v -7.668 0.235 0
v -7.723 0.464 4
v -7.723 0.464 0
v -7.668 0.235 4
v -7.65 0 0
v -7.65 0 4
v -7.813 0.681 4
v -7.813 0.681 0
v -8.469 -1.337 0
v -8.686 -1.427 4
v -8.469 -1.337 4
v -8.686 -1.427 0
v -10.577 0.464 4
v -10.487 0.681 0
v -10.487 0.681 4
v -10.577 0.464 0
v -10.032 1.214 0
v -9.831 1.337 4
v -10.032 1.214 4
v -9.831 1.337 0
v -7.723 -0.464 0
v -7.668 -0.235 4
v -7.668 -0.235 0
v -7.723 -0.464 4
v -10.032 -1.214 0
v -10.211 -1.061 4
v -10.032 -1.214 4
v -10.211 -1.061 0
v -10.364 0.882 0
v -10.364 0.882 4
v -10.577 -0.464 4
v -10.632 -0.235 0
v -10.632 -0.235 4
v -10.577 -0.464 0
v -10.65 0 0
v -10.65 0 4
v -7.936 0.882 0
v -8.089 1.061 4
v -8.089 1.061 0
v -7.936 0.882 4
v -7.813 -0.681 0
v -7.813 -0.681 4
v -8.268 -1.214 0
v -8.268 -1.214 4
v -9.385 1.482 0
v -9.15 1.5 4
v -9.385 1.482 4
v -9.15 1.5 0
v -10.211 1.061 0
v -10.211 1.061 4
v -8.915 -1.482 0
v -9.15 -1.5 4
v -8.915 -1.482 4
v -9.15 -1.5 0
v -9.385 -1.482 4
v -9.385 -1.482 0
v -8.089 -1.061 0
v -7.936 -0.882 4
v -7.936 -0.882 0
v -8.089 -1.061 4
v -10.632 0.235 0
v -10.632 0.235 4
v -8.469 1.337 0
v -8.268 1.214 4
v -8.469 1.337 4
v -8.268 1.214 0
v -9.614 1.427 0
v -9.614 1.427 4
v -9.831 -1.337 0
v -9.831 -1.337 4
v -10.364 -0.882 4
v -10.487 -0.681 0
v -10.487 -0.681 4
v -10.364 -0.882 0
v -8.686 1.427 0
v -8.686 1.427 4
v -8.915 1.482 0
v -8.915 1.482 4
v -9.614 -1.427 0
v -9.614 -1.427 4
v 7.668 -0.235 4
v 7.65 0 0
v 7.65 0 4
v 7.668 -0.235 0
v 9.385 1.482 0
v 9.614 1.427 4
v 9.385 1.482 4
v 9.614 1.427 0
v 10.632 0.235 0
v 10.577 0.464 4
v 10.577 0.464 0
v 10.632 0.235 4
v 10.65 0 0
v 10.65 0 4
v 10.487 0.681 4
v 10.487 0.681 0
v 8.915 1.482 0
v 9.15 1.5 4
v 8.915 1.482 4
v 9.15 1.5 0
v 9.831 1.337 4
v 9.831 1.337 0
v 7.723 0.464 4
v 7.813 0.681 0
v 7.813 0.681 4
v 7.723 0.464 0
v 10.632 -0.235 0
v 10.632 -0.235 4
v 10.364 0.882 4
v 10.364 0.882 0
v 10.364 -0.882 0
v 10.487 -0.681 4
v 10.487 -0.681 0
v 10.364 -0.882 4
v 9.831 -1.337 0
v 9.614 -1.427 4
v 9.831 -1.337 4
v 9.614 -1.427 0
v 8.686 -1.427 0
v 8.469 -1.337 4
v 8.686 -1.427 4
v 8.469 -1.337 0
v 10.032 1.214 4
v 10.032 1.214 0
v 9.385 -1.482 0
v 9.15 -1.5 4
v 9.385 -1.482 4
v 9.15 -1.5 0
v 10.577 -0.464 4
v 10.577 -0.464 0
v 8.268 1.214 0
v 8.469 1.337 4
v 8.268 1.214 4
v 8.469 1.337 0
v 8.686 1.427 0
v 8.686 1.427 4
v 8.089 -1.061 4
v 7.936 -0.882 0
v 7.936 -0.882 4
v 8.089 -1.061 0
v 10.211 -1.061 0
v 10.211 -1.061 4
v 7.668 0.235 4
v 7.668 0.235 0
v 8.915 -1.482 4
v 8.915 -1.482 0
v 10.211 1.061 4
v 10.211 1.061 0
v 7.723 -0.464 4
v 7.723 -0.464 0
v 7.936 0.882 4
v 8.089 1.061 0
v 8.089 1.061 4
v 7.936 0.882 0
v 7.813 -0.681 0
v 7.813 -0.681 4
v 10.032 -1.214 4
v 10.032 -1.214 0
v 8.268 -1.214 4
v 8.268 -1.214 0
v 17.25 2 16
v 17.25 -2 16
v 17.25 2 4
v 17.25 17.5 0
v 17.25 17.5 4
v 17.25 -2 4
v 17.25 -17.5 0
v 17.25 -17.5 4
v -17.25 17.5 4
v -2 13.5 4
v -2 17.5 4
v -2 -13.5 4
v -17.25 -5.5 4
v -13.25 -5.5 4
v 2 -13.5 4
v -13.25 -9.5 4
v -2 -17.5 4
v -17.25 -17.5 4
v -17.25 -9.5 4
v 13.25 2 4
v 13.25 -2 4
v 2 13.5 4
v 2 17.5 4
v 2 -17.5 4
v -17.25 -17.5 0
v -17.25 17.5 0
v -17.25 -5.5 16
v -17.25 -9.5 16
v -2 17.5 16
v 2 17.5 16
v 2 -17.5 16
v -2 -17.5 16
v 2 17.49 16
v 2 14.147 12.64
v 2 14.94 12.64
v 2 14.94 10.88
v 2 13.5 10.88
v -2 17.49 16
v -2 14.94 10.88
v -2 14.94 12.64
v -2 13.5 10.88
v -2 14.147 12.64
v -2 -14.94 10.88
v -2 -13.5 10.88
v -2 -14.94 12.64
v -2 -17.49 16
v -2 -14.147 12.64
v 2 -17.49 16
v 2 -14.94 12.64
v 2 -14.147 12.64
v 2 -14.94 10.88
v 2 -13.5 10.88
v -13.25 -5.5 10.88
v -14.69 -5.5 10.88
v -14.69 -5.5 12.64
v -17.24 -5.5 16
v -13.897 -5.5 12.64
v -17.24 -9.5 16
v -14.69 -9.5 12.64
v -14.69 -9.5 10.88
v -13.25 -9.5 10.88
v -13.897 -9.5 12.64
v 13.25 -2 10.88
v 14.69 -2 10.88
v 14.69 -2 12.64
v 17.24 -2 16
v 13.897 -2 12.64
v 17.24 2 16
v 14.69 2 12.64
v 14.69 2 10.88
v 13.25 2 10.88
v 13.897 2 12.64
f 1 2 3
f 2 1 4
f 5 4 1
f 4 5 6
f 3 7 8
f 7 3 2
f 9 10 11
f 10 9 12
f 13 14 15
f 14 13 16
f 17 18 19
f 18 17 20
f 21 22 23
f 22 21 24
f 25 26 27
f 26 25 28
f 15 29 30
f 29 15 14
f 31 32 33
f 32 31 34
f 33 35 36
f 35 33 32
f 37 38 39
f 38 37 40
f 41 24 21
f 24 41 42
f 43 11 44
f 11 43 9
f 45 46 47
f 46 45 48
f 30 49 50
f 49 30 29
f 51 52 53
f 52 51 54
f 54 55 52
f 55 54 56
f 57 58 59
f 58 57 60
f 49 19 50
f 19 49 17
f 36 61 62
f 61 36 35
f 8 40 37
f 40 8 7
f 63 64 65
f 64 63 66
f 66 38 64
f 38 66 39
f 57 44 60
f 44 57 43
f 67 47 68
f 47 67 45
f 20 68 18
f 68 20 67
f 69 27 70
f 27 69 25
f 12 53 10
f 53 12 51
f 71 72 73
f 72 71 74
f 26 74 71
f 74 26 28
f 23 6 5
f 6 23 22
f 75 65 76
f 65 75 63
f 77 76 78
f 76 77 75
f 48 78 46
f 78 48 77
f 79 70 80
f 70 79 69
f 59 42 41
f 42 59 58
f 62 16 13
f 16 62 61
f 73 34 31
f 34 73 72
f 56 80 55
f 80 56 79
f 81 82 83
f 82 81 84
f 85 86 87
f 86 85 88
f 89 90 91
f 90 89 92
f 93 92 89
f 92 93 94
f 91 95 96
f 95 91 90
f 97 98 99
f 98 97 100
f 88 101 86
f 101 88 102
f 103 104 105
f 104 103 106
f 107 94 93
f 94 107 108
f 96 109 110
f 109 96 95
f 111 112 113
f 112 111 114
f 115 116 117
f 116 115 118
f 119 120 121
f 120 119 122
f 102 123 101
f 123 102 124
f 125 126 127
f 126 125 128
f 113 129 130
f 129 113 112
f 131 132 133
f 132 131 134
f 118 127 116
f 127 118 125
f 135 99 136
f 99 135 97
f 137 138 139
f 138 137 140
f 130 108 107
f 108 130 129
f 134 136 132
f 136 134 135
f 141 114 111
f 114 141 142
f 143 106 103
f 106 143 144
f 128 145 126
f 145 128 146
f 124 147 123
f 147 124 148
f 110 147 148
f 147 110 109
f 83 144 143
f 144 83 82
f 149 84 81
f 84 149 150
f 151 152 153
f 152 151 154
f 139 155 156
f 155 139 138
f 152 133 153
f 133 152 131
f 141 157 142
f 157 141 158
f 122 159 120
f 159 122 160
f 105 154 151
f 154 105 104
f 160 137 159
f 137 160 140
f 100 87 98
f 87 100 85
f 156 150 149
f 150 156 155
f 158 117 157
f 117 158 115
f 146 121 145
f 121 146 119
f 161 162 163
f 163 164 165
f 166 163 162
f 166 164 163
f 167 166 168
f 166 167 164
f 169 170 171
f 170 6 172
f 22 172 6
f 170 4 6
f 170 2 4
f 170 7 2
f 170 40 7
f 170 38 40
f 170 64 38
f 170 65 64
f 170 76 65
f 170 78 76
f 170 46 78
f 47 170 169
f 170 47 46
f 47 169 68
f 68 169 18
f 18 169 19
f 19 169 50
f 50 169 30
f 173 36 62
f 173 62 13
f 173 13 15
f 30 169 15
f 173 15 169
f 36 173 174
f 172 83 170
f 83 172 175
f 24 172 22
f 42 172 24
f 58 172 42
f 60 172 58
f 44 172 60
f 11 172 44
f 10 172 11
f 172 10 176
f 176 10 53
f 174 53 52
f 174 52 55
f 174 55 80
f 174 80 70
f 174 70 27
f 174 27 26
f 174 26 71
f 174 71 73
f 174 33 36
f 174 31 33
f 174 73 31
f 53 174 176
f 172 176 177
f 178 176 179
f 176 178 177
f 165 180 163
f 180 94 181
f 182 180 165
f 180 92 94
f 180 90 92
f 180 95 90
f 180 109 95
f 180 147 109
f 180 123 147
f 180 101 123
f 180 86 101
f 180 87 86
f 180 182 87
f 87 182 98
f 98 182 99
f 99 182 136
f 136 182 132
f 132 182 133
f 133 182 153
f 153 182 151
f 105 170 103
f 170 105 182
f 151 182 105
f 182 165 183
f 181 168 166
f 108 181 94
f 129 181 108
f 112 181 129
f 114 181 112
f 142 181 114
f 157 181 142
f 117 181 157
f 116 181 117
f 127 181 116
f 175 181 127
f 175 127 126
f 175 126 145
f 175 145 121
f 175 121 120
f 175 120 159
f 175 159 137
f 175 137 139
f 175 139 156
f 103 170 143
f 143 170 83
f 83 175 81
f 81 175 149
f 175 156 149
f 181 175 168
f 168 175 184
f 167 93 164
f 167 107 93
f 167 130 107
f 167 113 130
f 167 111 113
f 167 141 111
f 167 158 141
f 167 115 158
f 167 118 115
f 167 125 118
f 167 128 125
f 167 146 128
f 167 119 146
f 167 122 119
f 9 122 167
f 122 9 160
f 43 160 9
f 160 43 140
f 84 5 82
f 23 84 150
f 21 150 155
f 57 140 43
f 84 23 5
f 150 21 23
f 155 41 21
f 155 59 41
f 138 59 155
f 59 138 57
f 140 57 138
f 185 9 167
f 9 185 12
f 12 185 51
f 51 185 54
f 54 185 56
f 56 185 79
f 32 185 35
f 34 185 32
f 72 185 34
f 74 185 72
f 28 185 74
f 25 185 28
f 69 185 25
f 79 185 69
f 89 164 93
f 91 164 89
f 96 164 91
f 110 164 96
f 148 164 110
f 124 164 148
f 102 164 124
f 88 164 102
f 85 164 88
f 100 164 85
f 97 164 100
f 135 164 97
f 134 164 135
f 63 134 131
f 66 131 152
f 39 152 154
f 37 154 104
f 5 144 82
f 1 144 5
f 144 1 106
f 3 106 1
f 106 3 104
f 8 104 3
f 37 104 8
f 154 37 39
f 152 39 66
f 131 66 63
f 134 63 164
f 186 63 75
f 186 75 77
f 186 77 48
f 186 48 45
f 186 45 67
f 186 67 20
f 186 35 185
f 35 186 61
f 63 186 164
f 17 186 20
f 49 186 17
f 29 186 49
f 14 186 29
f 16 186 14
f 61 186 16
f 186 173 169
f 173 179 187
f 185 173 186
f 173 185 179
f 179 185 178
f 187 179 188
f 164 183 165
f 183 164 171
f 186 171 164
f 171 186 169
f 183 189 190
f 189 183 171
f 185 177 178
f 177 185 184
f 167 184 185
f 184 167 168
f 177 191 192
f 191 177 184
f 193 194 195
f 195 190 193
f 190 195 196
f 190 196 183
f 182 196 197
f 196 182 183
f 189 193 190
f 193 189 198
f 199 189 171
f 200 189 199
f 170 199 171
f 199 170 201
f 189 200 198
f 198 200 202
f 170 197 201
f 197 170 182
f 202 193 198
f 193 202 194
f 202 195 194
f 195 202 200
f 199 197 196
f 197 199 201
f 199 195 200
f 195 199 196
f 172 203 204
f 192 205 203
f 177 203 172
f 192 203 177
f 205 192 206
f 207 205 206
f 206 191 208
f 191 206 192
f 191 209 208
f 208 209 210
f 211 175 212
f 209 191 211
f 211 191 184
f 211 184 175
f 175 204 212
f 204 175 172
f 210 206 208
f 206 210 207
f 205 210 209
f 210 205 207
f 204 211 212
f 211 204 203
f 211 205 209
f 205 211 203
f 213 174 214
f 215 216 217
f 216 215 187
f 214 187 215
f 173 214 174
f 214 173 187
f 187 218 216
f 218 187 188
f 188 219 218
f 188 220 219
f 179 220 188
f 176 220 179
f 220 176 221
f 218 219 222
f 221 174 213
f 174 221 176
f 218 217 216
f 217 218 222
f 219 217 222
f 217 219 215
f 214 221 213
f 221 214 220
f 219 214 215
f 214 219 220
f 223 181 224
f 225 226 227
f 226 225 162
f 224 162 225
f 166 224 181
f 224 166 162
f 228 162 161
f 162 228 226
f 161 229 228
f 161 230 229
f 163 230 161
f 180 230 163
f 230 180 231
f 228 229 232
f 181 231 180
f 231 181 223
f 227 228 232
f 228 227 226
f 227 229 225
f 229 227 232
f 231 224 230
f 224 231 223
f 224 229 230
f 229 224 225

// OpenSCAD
//-------------------------------------------------------------
//-- PCB Snap-In Mount Plate (v7)
//-- Correct inner lip cutout + inward slope
//-------------------------------------------------------------

//-- ===== Parameters (mm) =====
pcbWidth        = 30.5;
pcbLength       = 31.0;
pcbThickness    = 1.6;
pcbClearance    = 0.15;  //-- small fit tolerance, adjust if PCB feels too tight

snapInThickness = 4;          //-- XY thickness of wall
snapInHeight    = 12;         //-- Z height above plate

snapInSlope     = 45;         //-- degrees, 30..60 typical
snapInWidth     = 4;          //-- width of each snap along edge

//-- Snap-in positions (0 disables)
snapInPosTop    = pcbWidth  / 2;
snapInPosBottom = pcbWidth  / 2;
snapInPosLeft   = 8; //pcbLength / 2;
snapInPosRight  = pcbLength / 2;

plateThickness  = 4;
plateHolesList = [
    [pcbWidth/5, pcbLength/2, 3],
    [pcbWidth-(pcbWidth/5), pcbLength/2, 3]
];

showDebug = 0;                //-- 1 = debug colors, 0 = final solid

//-------------------------------------------------------------
//-- Helpers
//-------------------------------------------------------------
function clamp(v,a,b) = max(a, min(b, v));
function drop_at_angle(thk, ang_deg, max_drop) = clamp(tan(ang_deg) * thk, 0, max_drop);

//-------------------------------------------------------------
//-- Green cutter: starts LOWER at inner face (H - D)
//-- and reaches H at the outer face, so it always cuts the wall
//-------------------------------------------------------------
module cutSlopeAtTop(runLen)
{
    H = snapInHeight;
    T = snapInThickness;
    D = drop_at_angle(T, snapInSlope, H);   //-- ~T at 45°
    eps = 0.01;                              //-- tiny overlap for robust CSG

    //-- Inner top is lowered by D; outer top stays at H.
    //-- We extend upwards a lot so the difference always removes material.
    v = [
        [-runLen/2, 0, H - D - eps],   // 0 inner top (X-)
        [ runLen/2, 0, H - D - eps],   // 1 inner top (X+)
        [-runLen/2, T, H + eps],       // 2 outer top (X-)
        [ runLen/2, T, H + eps],       // 3 outer top (X+)
        [-runLen/2, 0, H - D + H],     // 4 top extension
        [ runLen/2, 0, H - D + H],     // 5
        [-runLen/2, T, H + H],         // 6
        [ runLen/2, T, H + H]          // 7
    ];

    faces = [
        [0,1,3,2],   //-- sloped rectangle (cutting plane)
        [2,3,7,6],   //-- outer vertical
        [0,4,5,1],   //-- inner vertical
        [0,2,6,4],   //-- side (X-)
        [1,5,7,3],   //-- side (X+)
        [4,6,7,5]    //-- top
    ];

    color([0,1,0,0.5]) polyhedron(points = v, faces = faces, convexity = 10);
}

//-------------------------------------------------------------
//-- Blue lip CUTTER: creates notch *inside* wall for PCB edge
//-------------------------------------------------------------
module lipCutter(runLen)
{
    clearance = pcbClearance;                //-- fit clearance
    lipDepth  = pcbThickness * 0.9;          //-- how deep the notch goes inward
    lipHeight = pcbThickness * 1.1;          //-- vertical size of notch
    lipZ      = snapInHeight - (3.2 * pcbThickness); //-- vertical position below top

    color("blue")
    translate([ -runLen/2, 0, lipZ ])        //-- cut starts at wall inner face (Y=0)
        cube([ runLen, lipDepth, lipHeight ]);
}

//-------------------------------------------------------------
//-- Red wall before subtracting slope + lip
//-------------------------------------------------------------
module wallBlock(runLen)
{
    color("red")
    translate([ -runLen/2, 0, 0 ])
        cube([ runLen, snapInThickness, snapInHeight ]);
}

//-------------------------------------------------------------
//-- Full Snap-In Mount
//-------------------------------------------------------------
module snapInMount(runLen)
{
    if (showDebug)
    {
        wallBlock(runLen);
        cutSlopeAtTop(runLen);
        lipCutter(runLen);
    }
    else
    {
        difference()
        {
            wallBlock(runLen);
            cutSlopeAtTop(runLen);
            lipCutter(runLen);
        }
    }
}

//-------------------------------------------------------------
//-- Snap placement helpers (with inward offset)
//-- Positions each snap so that its inner wall face overlaps
//-- the PCB edge by half the wall thickness.
//-------------------------------------------------------------

module placeTop(pos, runLen)
{
    if (pos != 0)
        translate([
            //-- X: center position along width
            clamp(pos, runLen/2, pcbWidth - runLen/2) - pcbWidth/2,

            //-- Y: inward offset from top edge
            (pcbLength / 2) - (snapInThickness / 2),

            //-- Z: on top of the base plate
            plateThickness
        ])
            snapInMount(runLen);
}

module placeBottom(pos, runLen)
{
    if (pos != 0)
        translate([
            //-- X: center position along width
            clamp(pos, runLen/2, pcbWidth - runLen/2) - pcbWidth/2,

            //-- Y: inward offset from bottom edge
            (-pcbLength / 2) + (snapInThickness / 2),

            //-- Z: on top of the base plate
            plateThickness
        ])
            rotate([0, 0, 180])
                snapInMount(runLen);
}

module placeLeft(pos, runLen)
{
    if (pos != 0)
        translate([
            //-- X: inward offset from left edge
            (-pcbWidth / 2) + (snapInThickness / 2),

            //-- Y: center position along length
            clamp(pos, runLen/2, pcbLength - runLen/2) - pcbLength/2,

            //-- Z: on top of the base plate
            plateThickness
        ])
            rotate([0, 0, 90])
                snapInMount(runLen);
}

module placeRight(pos, runLen)
{
    if (pos != 0)
        translate([
            //-- X: inward offset from right edge
            (pcbWidth / 2) - (snapInThickness / 2),

            //-- Y: center position along length
            clamp(pos, runLen/2, pcbLength - runLen/2) - pcbLength/2,

            //-- Z: on top of the base plate
            plateThickness
        ])
            rotate([0, 0, -90])
                snapInMount(runLen);
}

//-------------------------------------------------------------
//-- Plate hole generator (generic version)
//-- Loops through all entries in plateHolesList = [ [x,y,d], ... ]
//-- and subtracts holes if both X and Y ≠ 0
//-------------------------------------------------------------
module plateHoles(pWidth, pLength, pThickness)
{
    difference()
    {
        //-- Base plate
        color("gold")
        translate([ -pWidth/2, -pLength/2, 0 ])
            cube([ pWidth, pLength, pThickness ]);

        //-- All defined holes
        for (hole = plateHolesList)
        {
            x = hole[0];
            y = hole[1];
            d = hole[2];

            if (!(x == 0 && y == 0))
            {
                translate([ x - pcbWidth/2, y - pcbLength/2, -0.1 ])
                    cylinder(h = pThickness + 0.2, d = d, $fn = 40);
            }
        }
    }
}

//-------------------------------------------------------------
//-- Main Assembly
//-------------------------------------------------------------
module pcbSnapInPlate()
{
    plateWidth  = pcbWidth  + snapInThickness;
    plateLength = pcbLength + snapInThickness;

    //-- Base plate with optional holes (correct thickness!)
    plateHoles(plateWidth, plateLength, plateThickness);

    //-- Mounts (sit exactly on top of the plate)
    placeTop(   snapInPosTop,    min(snapInWidth, pcbWidth)  );
    placeBottom(snapInPosBottom, min(snapInWidth, pcbWidth)  );
    placeLeft(  snapInPosLeft,   min(snapInWidth, pcbLength) );
    placeRight( snapInPosRight,  min(snapInWidth, pcbLength) );
}

//-------------------------------------------------------------
//-- Render
//-------------------------------------------------------------
pcbSnapInPlate();

//-------------------------------------------------------------
//-- Reference PCB block (black)
//-------------------------------------------------------------
lipZ = snapInHeight - (2.5 * pcbThickness);  //-- slightly less deep cut
translate([0, 0, plateThickness + lipZ])
{
    ;//color([0,0,0,0.5])  cube([pcbWidth, pcbLength, pcbThickness], center=true);
}
